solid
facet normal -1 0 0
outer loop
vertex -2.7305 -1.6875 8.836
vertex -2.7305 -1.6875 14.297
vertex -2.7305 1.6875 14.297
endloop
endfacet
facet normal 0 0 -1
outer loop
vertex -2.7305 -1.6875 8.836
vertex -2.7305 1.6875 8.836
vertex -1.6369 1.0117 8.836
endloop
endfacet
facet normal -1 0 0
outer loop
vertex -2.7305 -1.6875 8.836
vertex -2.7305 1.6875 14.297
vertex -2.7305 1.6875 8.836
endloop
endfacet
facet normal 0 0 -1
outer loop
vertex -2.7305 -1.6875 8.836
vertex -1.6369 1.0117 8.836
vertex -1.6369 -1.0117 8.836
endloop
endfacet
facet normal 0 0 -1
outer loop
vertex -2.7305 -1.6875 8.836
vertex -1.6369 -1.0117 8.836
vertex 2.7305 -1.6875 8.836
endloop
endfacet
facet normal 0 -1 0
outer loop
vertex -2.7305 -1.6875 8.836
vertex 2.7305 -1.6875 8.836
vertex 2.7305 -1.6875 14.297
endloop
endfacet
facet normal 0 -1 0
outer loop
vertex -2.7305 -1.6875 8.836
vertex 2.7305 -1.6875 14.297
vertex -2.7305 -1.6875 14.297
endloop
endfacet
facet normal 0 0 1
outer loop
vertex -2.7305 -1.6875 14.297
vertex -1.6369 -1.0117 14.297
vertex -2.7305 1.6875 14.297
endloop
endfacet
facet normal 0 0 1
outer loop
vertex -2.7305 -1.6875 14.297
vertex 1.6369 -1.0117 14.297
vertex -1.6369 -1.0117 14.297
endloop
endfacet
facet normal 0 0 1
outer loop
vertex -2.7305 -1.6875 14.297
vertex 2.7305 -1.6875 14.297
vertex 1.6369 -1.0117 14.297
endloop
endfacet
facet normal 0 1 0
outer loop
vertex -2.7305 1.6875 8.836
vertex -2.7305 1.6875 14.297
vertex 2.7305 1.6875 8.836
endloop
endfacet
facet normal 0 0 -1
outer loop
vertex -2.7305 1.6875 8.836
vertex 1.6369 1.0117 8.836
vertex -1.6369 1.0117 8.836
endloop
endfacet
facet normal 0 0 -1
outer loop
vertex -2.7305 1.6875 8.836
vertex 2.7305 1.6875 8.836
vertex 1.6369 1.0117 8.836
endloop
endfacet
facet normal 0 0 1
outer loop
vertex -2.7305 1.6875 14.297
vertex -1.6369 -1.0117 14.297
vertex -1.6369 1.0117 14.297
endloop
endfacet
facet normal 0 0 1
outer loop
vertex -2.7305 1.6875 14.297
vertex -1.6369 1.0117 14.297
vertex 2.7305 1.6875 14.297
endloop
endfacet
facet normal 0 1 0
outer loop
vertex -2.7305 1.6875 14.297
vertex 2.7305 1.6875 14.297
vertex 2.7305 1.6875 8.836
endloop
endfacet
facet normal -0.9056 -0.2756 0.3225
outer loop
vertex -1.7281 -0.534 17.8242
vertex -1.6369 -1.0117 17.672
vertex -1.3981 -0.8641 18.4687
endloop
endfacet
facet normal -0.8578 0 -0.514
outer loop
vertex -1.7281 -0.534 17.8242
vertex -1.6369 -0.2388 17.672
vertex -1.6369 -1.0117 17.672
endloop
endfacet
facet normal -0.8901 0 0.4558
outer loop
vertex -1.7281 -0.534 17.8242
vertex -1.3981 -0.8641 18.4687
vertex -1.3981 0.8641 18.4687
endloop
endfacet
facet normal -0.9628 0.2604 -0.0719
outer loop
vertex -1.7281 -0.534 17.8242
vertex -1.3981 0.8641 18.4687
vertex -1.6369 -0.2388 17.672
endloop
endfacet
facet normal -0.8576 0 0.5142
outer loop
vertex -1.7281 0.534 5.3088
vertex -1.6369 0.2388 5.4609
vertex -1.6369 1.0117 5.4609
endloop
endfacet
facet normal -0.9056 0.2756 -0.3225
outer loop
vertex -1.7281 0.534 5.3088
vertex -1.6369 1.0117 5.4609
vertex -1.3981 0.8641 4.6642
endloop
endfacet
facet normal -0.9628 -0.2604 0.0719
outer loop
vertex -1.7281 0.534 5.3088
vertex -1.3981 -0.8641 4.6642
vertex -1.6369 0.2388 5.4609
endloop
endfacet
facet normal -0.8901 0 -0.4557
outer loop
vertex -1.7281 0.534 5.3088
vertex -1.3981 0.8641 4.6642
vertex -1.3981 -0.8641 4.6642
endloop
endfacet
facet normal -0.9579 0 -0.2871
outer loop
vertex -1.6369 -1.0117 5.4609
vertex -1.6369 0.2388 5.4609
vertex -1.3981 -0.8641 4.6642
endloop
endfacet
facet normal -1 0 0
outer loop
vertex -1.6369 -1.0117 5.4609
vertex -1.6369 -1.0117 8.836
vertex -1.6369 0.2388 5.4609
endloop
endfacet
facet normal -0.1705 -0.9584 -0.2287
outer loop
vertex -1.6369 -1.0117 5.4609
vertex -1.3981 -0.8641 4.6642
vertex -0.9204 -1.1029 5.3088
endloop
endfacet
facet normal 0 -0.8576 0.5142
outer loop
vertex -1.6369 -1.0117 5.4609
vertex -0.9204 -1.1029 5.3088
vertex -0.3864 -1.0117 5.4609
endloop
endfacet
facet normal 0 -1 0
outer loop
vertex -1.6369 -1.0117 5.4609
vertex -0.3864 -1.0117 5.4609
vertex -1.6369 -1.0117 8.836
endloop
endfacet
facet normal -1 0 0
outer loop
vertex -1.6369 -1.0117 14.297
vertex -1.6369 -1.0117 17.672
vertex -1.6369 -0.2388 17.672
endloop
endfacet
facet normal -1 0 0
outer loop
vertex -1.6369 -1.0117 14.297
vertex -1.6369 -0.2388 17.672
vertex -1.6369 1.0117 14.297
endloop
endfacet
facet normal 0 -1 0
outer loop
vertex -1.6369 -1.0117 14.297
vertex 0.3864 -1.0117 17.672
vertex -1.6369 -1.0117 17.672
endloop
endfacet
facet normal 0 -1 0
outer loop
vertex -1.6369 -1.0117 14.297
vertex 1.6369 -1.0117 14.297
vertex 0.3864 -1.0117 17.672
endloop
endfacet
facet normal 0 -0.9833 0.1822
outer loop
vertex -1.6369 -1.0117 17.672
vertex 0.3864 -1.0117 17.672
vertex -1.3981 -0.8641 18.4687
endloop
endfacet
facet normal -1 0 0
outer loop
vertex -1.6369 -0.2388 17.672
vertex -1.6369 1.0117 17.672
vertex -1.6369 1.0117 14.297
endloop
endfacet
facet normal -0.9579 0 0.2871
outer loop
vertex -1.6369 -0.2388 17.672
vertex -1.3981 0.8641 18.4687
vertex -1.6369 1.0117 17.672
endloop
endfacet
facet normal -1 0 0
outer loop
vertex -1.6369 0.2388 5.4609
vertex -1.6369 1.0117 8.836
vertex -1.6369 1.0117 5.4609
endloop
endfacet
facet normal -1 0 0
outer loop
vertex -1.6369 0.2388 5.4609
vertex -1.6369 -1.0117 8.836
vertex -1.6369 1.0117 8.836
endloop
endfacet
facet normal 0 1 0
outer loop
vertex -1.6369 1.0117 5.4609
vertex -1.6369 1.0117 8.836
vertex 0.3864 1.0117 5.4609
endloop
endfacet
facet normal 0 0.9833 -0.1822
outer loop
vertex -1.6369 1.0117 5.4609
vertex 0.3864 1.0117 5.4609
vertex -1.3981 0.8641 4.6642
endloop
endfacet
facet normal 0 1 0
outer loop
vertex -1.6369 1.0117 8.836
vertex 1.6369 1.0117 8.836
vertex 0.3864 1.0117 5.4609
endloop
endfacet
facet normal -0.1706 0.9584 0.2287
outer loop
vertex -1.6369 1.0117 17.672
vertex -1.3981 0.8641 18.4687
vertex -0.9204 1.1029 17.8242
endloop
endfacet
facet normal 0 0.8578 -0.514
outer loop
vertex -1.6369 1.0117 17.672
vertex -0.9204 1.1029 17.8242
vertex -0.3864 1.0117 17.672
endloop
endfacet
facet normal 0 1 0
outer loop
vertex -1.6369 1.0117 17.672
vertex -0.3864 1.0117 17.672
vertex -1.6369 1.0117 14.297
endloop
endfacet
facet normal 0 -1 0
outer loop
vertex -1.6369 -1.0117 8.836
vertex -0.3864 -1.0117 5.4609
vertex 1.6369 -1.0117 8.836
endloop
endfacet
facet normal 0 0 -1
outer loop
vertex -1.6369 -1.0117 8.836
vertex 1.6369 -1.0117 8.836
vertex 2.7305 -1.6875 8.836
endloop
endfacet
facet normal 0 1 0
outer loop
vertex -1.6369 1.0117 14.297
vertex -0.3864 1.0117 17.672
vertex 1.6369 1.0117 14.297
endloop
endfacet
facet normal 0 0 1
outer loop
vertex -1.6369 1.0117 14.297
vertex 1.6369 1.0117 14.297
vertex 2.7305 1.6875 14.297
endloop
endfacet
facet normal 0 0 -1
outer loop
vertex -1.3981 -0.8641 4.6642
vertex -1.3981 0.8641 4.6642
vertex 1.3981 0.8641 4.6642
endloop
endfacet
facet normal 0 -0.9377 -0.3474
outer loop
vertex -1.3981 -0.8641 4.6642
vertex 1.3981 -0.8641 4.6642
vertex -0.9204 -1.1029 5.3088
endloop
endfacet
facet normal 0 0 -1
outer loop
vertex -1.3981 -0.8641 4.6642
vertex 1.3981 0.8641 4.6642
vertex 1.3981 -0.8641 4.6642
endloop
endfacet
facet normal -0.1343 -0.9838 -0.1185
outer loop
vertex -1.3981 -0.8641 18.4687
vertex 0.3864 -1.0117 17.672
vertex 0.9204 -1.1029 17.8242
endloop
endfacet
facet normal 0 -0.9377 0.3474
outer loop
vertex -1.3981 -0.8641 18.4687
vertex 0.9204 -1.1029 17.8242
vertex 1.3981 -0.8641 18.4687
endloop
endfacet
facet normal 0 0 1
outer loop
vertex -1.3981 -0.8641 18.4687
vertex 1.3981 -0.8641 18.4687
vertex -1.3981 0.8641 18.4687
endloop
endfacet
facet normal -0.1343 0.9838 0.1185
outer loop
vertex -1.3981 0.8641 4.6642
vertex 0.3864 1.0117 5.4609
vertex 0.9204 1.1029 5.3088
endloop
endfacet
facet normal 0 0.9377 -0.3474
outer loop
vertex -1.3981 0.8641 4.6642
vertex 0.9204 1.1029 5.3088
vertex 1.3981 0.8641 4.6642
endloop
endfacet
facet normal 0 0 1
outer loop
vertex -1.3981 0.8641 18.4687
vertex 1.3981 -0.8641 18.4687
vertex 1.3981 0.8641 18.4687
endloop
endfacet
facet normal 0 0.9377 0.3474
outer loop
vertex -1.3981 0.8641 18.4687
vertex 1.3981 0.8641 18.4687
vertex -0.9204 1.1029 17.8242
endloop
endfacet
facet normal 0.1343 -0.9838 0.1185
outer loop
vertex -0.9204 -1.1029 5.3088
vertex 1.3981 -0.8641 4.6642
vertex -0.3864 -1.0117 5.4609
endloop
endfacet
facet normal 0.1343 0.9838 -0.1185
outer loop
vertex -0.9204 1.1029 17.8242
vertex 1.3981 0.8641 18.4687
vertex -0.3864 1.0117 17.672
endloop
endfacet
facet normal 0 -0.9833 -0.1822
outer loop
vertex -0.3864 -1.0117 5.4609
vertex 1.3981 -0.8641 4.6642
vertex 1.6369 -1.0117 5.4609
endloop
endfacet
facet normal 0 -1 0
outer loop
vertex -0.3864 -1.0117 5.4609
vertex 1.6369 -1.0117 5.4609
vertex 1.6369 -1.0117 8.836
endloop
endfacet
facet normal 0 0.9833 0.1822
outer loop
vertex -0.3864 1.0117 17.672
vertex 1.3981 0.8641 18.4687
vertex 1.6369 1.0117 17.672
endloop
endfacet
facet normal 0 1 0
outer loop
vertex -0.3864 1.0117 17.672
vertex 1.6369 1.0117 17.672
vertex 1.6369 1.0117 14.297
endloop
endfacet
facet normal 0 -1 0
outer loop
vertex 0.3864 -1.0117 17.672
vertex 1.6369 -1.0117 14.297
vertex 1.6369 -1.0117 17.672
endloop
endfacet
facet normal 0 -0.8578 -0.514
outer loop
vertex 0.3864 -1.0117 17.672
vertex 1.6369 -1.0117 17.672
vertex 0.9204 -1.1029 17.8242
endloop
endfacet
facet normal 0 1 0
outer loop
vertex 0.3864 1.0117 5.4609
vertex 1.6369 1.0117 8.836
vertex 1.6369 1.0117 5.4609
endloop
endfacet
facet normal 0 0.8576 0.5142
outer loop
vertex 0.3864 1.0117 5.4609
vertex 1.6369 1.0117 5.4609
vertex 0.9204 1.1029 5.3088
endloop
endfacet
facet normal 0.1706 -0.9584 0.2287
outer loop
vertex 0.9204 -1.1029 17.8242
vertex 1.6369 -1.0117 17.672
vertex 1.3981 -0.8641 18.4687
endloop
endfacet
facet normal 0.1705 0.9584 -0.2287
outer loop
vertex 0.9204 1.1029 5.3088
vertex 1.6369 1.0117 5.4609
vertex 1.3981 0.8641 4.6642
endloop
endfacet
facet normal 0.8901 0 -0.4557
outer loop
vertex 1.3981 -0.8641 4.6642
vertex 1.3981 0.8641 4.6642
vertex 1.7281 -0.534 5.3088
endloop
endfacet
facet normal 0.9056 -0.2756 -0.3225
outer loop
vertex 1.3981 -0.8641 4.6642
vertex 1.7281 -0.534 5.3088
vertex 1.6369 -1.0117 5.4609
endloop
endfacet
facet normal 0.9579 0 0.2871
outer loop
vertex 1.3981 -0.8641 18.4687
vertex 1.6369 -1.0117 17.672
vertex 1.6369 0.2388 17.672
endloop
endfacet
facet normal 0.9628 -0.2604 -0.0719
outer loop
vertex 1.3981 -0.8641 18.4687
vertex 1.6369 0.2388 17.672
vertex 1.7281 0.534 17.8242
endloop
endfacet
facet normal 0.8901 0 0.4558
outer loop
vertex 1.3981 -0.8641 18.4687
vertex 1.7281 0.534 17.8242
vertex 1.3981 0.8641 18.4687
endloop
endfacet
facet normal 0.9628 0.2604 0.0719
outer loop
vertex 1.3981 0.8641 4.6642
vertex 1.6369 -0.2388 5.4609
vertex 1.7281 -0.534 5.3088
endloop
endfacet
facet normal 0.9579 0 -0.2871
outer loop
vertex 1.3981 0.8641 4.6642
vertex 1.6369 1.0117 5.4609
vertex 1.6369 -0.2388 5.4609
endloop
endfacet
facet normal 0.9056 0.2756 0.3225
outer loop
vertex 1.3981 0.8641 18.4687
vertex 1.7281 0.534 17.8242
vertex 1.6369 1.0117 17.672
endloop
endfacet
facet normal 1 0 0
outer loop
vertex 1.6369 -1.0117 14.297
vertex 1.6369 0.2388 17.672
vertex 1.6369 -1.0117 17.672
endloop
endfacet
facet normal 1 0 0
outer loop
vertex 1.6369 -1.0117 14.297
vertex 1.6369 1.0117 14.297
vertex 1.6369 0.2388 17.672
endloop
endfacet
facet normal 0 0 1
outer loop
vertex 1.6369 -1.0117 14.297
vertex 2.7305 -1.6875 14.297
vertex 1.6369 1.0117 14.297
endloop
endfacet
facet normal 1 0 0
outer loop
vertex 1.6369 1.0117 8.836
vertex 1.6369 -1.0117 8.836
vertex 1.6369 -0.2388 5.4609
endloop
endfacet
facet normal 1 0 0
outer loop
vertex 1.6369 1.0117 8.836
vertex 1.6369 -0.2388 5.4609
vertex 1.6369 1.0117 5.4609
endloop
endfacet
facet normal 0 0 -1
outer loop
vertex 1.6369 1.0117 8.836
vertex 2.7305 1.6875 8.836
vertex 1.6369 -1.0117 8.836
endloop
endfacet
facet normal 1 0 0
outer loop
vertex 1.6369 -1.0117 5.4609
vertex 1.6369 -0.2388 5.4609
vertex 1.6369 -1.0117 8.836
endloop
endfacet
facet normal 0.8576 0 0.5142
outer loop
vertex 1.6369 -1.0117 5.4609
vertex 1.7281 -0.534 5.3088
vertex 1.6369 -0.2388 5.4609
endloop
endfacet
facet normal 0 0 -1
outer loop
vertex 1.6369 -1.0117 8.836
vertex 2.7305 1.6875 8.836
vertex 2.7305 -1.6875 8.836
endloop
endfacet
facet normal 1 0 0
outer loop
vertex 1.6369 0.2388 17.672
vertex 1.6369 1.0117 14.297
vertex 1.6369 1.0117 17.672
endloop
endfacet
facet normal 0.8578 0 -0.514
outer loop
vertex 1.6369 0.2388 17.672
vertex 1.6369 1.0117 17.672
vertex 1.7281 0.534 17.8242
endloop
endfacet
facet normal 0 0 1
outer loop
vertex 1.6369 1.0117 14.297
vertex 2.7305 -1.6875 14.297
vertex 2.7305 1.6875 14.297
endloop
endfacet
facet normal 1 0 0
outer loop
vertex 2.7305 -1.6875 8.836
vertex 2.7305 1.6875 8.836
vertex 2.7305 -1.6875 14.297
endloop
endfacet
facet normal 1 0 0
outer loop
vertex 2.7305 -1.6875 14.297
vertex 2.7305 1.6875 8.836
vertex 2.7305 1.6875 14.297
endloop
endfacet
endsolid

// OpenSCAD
sc=(4+2*sqrt(5))/cos(16.5);
points=[[ -0.309016994374947, -0.190983005625053, 1 ],[ -0.309016994374947, -0.190983005625053, 1.61803398874989 ],[ -0.309016994374947, 0.190983005625053, 1 ],[ -0.309016994374947, 0.190983005625053, 1.61803398874989 ],[ -0.201626123751154, -0.0623058987490541, 2.01722092687432 ],[ -0.201626123751154, 0.0623058987490541, 0.600813061875577 ],[ -0.190983005625053, -0.118033988749895, 0.618033988749895 ],[ -0.190983005625053, -0.118033988749895, 1 ],[ -0.190983005625053, -0.118033988749895, 1.61803398874989 ],[ -0.190983005625053, -0.118033988749895, 2 ],[ -0.190983005625053, -0.0278640450004204, 2 ],[ -0.190983005625053, 0.0278640450004204, 0.618033988749895 ],[ -0.190983005625053, 0.118033988749895, 0.618033988749895 ],[ -0.190983005625053, 0.118033988749895, 1 ],[ -0.190983005625053, 0.118033988749895, 1.61803398874989 ],[ -0.190983005625053, 0.118033988749895, 2 ],[ -0.163118960624632, -0.100813061875577, 0.52786404500042 ],[ -0.163118960624632, -0.100813061875577, 2.09016994374947 ],[ -0.163118960624632, 0.100813061875577, 0.52786404500042 ],[ -0.163118960624632, 0.100813061875577, 2.09016994374947 ],[ -0.107390870623792, -0.128677106875998, 0.600813061875577 ],[ -0.107390870623792, 0.128677106875998, 2.01722092687432 ],[ -0.0450849718747373, -0.118033988749895, 0.618033988749895 ],[ -0.0450849718747373, 0.118033988749895, 2 ],[ 0, 0, 0 ],[ 0, 0, 2.61803398874989 ],[ 0, 2.61803398874989, 0 ],[ 0.0450849718747373, -0.118033988749895, 2 ],[ 0.0450849718747373, 0.118033988749895, 0.618033988749895 ],[ 0.107390870623792, -0.128677106875998, 2.01722092687432 ],[ 0.107390870623792, 0.128677106875998, 0.600813061875577 ],[ 0.163118960624632, -0.100813061875577, 0.52786404500042 ],[ 0.163118960624632, -0.100813061875577, 2.09016994374947 ],[ 0.163118960624632, 0.100813061875577, 0.52786404500042 ],[ 0.163118960624632, 0.100813061875577, 2.09016994374947 ],[ 0.190983005625053, -0.118033988749895, 0.618033988749895 ],[ 0.190983005625053, -0.118033988749895, 1 ],[ 0.190983005625053, -0.118033988749895, 1.61803398874989 ],[ 0.190983005625053, -0.118033988749895, 2 ],[ 0.190983005625053, -0.0278640450004204, 0.618033988749895 ],[ 0.190983005625053, 0.0278640450004204, 2 ],[ 0.190983005625053, 0.118033988749895, 0.618033988749895 ],[ 0.190983005625053, 0.118033988749895, 1 ],[ 0.190983005625053, 0.118033988749895, 1.61803398874989 ],[ 0.190983005625053, 0.118033988749895, 2 ],[ 0.201626123751154, -0.0623058987490541, 0.600813061875577 ],[ 0.201626123751154, 0.0623058987490541, 2.01722092687432 ],[ 0.309016994374947, -0.190983005625053, 1 ],[ 0.309016994374947, -0.190983005625053, 1.61803398874989 ],[ 0.309016994374947, 0.190983005625053, 1 ],[ 0.309016994374947, 0.190983005625053, 1.61803398874989 ]];

thinner=0.97;

scale(sc) render() {

    scale([thinner,thinner,1]) polyhedron(points,faces=[[ 13, 7, 11 ],[ 12, 5, 18 ],[ 18, 33, 30 ],[ 33, 41, 30 ],[ 7, 13, 42, 36 ],[ 31, 45, 33 ],[ 45, 35, 39 ],[ 30, 41, 28 ],[ 42, 13, 28 ],[ 41, 42, 28 ],[ 11, 6, 16 ],[ 5, 11, 16 ],[ 42, 41, 39 ],[ 28, 12, 18 ],[ 31, 33, 18, 16 ],[ 22, 36, 35 ],[ 6, 7, 22 ],[ 36, 42, 39 ],[ 28, 13, 12 ],[ 20, 22, 31 ],[ 13, 11, 12 ],[ 35, 45, 31 ],[ 5, 12, 11 ],[ 30, 28, 18 ],[ 18, 5, 16 ],[ 36, 39, 35 ],[ 39, 41, 33 ],[ 22, 35, 31 ],[ 16, 6, 20 ],[ 45, 39, 33 ],[ 7, 6, 11 ],[ 31, 16, 20 ],[ 20, 6, 22 ],[ 7, 36, 22 ]]);
    scale([thinner,thinner,1]) polyhedron(points,faces=[[ 15, 14, 23 ],[ 34, 19, 21 ],[ 14, 43, 23 ],[ 37, 38, 40 ],[ 21, 15, 23 ],[ 8, 14, 10 ],[ 29, 38, 27 ],[ 4, 10, 19 ],[ 17, 19, 34, 32 ],[ 17, 32, 29 ],[ 23, 43, 44 ],[ 44, 46, 34 ],[ 17, 4, 19 ],[ 37, 8, 27 ],[ 10, 15, 19 ],[ 19, 15, 21 ],[ 21, 23, 34 ],[ 27, 9, 17 ],[ 40, 38, 32 ],[ 32, 38, 29 ],[ 34, 46, 32 ],[ 8, 10, 9 ],[ 43, 37, 40 ],[ 27, 8, 9 ],[ 29, 27, 17 ],[ 4, 9, 10 ],[ 46, 44, 40 ],[ 46, 40, 32 ],[ 23, 44, 34 ],[ 38, 37, 27 ],[ 14, 15, 10 ],[ 43, 40, 44 ],[ 43, 14, 8, 37 ],[ 9, 4, 17 ]]);
    polyhedron(points,faces=[[ 0, 1, 48, 47 ],[ 49, 2, 0, 47 ],[ 0, 2, 3, 1 ],[ 48, 50, 49, 47 ],[ 48, 1, 3, 50 ],[ 3, 2, 49, 50 ]]);

}
